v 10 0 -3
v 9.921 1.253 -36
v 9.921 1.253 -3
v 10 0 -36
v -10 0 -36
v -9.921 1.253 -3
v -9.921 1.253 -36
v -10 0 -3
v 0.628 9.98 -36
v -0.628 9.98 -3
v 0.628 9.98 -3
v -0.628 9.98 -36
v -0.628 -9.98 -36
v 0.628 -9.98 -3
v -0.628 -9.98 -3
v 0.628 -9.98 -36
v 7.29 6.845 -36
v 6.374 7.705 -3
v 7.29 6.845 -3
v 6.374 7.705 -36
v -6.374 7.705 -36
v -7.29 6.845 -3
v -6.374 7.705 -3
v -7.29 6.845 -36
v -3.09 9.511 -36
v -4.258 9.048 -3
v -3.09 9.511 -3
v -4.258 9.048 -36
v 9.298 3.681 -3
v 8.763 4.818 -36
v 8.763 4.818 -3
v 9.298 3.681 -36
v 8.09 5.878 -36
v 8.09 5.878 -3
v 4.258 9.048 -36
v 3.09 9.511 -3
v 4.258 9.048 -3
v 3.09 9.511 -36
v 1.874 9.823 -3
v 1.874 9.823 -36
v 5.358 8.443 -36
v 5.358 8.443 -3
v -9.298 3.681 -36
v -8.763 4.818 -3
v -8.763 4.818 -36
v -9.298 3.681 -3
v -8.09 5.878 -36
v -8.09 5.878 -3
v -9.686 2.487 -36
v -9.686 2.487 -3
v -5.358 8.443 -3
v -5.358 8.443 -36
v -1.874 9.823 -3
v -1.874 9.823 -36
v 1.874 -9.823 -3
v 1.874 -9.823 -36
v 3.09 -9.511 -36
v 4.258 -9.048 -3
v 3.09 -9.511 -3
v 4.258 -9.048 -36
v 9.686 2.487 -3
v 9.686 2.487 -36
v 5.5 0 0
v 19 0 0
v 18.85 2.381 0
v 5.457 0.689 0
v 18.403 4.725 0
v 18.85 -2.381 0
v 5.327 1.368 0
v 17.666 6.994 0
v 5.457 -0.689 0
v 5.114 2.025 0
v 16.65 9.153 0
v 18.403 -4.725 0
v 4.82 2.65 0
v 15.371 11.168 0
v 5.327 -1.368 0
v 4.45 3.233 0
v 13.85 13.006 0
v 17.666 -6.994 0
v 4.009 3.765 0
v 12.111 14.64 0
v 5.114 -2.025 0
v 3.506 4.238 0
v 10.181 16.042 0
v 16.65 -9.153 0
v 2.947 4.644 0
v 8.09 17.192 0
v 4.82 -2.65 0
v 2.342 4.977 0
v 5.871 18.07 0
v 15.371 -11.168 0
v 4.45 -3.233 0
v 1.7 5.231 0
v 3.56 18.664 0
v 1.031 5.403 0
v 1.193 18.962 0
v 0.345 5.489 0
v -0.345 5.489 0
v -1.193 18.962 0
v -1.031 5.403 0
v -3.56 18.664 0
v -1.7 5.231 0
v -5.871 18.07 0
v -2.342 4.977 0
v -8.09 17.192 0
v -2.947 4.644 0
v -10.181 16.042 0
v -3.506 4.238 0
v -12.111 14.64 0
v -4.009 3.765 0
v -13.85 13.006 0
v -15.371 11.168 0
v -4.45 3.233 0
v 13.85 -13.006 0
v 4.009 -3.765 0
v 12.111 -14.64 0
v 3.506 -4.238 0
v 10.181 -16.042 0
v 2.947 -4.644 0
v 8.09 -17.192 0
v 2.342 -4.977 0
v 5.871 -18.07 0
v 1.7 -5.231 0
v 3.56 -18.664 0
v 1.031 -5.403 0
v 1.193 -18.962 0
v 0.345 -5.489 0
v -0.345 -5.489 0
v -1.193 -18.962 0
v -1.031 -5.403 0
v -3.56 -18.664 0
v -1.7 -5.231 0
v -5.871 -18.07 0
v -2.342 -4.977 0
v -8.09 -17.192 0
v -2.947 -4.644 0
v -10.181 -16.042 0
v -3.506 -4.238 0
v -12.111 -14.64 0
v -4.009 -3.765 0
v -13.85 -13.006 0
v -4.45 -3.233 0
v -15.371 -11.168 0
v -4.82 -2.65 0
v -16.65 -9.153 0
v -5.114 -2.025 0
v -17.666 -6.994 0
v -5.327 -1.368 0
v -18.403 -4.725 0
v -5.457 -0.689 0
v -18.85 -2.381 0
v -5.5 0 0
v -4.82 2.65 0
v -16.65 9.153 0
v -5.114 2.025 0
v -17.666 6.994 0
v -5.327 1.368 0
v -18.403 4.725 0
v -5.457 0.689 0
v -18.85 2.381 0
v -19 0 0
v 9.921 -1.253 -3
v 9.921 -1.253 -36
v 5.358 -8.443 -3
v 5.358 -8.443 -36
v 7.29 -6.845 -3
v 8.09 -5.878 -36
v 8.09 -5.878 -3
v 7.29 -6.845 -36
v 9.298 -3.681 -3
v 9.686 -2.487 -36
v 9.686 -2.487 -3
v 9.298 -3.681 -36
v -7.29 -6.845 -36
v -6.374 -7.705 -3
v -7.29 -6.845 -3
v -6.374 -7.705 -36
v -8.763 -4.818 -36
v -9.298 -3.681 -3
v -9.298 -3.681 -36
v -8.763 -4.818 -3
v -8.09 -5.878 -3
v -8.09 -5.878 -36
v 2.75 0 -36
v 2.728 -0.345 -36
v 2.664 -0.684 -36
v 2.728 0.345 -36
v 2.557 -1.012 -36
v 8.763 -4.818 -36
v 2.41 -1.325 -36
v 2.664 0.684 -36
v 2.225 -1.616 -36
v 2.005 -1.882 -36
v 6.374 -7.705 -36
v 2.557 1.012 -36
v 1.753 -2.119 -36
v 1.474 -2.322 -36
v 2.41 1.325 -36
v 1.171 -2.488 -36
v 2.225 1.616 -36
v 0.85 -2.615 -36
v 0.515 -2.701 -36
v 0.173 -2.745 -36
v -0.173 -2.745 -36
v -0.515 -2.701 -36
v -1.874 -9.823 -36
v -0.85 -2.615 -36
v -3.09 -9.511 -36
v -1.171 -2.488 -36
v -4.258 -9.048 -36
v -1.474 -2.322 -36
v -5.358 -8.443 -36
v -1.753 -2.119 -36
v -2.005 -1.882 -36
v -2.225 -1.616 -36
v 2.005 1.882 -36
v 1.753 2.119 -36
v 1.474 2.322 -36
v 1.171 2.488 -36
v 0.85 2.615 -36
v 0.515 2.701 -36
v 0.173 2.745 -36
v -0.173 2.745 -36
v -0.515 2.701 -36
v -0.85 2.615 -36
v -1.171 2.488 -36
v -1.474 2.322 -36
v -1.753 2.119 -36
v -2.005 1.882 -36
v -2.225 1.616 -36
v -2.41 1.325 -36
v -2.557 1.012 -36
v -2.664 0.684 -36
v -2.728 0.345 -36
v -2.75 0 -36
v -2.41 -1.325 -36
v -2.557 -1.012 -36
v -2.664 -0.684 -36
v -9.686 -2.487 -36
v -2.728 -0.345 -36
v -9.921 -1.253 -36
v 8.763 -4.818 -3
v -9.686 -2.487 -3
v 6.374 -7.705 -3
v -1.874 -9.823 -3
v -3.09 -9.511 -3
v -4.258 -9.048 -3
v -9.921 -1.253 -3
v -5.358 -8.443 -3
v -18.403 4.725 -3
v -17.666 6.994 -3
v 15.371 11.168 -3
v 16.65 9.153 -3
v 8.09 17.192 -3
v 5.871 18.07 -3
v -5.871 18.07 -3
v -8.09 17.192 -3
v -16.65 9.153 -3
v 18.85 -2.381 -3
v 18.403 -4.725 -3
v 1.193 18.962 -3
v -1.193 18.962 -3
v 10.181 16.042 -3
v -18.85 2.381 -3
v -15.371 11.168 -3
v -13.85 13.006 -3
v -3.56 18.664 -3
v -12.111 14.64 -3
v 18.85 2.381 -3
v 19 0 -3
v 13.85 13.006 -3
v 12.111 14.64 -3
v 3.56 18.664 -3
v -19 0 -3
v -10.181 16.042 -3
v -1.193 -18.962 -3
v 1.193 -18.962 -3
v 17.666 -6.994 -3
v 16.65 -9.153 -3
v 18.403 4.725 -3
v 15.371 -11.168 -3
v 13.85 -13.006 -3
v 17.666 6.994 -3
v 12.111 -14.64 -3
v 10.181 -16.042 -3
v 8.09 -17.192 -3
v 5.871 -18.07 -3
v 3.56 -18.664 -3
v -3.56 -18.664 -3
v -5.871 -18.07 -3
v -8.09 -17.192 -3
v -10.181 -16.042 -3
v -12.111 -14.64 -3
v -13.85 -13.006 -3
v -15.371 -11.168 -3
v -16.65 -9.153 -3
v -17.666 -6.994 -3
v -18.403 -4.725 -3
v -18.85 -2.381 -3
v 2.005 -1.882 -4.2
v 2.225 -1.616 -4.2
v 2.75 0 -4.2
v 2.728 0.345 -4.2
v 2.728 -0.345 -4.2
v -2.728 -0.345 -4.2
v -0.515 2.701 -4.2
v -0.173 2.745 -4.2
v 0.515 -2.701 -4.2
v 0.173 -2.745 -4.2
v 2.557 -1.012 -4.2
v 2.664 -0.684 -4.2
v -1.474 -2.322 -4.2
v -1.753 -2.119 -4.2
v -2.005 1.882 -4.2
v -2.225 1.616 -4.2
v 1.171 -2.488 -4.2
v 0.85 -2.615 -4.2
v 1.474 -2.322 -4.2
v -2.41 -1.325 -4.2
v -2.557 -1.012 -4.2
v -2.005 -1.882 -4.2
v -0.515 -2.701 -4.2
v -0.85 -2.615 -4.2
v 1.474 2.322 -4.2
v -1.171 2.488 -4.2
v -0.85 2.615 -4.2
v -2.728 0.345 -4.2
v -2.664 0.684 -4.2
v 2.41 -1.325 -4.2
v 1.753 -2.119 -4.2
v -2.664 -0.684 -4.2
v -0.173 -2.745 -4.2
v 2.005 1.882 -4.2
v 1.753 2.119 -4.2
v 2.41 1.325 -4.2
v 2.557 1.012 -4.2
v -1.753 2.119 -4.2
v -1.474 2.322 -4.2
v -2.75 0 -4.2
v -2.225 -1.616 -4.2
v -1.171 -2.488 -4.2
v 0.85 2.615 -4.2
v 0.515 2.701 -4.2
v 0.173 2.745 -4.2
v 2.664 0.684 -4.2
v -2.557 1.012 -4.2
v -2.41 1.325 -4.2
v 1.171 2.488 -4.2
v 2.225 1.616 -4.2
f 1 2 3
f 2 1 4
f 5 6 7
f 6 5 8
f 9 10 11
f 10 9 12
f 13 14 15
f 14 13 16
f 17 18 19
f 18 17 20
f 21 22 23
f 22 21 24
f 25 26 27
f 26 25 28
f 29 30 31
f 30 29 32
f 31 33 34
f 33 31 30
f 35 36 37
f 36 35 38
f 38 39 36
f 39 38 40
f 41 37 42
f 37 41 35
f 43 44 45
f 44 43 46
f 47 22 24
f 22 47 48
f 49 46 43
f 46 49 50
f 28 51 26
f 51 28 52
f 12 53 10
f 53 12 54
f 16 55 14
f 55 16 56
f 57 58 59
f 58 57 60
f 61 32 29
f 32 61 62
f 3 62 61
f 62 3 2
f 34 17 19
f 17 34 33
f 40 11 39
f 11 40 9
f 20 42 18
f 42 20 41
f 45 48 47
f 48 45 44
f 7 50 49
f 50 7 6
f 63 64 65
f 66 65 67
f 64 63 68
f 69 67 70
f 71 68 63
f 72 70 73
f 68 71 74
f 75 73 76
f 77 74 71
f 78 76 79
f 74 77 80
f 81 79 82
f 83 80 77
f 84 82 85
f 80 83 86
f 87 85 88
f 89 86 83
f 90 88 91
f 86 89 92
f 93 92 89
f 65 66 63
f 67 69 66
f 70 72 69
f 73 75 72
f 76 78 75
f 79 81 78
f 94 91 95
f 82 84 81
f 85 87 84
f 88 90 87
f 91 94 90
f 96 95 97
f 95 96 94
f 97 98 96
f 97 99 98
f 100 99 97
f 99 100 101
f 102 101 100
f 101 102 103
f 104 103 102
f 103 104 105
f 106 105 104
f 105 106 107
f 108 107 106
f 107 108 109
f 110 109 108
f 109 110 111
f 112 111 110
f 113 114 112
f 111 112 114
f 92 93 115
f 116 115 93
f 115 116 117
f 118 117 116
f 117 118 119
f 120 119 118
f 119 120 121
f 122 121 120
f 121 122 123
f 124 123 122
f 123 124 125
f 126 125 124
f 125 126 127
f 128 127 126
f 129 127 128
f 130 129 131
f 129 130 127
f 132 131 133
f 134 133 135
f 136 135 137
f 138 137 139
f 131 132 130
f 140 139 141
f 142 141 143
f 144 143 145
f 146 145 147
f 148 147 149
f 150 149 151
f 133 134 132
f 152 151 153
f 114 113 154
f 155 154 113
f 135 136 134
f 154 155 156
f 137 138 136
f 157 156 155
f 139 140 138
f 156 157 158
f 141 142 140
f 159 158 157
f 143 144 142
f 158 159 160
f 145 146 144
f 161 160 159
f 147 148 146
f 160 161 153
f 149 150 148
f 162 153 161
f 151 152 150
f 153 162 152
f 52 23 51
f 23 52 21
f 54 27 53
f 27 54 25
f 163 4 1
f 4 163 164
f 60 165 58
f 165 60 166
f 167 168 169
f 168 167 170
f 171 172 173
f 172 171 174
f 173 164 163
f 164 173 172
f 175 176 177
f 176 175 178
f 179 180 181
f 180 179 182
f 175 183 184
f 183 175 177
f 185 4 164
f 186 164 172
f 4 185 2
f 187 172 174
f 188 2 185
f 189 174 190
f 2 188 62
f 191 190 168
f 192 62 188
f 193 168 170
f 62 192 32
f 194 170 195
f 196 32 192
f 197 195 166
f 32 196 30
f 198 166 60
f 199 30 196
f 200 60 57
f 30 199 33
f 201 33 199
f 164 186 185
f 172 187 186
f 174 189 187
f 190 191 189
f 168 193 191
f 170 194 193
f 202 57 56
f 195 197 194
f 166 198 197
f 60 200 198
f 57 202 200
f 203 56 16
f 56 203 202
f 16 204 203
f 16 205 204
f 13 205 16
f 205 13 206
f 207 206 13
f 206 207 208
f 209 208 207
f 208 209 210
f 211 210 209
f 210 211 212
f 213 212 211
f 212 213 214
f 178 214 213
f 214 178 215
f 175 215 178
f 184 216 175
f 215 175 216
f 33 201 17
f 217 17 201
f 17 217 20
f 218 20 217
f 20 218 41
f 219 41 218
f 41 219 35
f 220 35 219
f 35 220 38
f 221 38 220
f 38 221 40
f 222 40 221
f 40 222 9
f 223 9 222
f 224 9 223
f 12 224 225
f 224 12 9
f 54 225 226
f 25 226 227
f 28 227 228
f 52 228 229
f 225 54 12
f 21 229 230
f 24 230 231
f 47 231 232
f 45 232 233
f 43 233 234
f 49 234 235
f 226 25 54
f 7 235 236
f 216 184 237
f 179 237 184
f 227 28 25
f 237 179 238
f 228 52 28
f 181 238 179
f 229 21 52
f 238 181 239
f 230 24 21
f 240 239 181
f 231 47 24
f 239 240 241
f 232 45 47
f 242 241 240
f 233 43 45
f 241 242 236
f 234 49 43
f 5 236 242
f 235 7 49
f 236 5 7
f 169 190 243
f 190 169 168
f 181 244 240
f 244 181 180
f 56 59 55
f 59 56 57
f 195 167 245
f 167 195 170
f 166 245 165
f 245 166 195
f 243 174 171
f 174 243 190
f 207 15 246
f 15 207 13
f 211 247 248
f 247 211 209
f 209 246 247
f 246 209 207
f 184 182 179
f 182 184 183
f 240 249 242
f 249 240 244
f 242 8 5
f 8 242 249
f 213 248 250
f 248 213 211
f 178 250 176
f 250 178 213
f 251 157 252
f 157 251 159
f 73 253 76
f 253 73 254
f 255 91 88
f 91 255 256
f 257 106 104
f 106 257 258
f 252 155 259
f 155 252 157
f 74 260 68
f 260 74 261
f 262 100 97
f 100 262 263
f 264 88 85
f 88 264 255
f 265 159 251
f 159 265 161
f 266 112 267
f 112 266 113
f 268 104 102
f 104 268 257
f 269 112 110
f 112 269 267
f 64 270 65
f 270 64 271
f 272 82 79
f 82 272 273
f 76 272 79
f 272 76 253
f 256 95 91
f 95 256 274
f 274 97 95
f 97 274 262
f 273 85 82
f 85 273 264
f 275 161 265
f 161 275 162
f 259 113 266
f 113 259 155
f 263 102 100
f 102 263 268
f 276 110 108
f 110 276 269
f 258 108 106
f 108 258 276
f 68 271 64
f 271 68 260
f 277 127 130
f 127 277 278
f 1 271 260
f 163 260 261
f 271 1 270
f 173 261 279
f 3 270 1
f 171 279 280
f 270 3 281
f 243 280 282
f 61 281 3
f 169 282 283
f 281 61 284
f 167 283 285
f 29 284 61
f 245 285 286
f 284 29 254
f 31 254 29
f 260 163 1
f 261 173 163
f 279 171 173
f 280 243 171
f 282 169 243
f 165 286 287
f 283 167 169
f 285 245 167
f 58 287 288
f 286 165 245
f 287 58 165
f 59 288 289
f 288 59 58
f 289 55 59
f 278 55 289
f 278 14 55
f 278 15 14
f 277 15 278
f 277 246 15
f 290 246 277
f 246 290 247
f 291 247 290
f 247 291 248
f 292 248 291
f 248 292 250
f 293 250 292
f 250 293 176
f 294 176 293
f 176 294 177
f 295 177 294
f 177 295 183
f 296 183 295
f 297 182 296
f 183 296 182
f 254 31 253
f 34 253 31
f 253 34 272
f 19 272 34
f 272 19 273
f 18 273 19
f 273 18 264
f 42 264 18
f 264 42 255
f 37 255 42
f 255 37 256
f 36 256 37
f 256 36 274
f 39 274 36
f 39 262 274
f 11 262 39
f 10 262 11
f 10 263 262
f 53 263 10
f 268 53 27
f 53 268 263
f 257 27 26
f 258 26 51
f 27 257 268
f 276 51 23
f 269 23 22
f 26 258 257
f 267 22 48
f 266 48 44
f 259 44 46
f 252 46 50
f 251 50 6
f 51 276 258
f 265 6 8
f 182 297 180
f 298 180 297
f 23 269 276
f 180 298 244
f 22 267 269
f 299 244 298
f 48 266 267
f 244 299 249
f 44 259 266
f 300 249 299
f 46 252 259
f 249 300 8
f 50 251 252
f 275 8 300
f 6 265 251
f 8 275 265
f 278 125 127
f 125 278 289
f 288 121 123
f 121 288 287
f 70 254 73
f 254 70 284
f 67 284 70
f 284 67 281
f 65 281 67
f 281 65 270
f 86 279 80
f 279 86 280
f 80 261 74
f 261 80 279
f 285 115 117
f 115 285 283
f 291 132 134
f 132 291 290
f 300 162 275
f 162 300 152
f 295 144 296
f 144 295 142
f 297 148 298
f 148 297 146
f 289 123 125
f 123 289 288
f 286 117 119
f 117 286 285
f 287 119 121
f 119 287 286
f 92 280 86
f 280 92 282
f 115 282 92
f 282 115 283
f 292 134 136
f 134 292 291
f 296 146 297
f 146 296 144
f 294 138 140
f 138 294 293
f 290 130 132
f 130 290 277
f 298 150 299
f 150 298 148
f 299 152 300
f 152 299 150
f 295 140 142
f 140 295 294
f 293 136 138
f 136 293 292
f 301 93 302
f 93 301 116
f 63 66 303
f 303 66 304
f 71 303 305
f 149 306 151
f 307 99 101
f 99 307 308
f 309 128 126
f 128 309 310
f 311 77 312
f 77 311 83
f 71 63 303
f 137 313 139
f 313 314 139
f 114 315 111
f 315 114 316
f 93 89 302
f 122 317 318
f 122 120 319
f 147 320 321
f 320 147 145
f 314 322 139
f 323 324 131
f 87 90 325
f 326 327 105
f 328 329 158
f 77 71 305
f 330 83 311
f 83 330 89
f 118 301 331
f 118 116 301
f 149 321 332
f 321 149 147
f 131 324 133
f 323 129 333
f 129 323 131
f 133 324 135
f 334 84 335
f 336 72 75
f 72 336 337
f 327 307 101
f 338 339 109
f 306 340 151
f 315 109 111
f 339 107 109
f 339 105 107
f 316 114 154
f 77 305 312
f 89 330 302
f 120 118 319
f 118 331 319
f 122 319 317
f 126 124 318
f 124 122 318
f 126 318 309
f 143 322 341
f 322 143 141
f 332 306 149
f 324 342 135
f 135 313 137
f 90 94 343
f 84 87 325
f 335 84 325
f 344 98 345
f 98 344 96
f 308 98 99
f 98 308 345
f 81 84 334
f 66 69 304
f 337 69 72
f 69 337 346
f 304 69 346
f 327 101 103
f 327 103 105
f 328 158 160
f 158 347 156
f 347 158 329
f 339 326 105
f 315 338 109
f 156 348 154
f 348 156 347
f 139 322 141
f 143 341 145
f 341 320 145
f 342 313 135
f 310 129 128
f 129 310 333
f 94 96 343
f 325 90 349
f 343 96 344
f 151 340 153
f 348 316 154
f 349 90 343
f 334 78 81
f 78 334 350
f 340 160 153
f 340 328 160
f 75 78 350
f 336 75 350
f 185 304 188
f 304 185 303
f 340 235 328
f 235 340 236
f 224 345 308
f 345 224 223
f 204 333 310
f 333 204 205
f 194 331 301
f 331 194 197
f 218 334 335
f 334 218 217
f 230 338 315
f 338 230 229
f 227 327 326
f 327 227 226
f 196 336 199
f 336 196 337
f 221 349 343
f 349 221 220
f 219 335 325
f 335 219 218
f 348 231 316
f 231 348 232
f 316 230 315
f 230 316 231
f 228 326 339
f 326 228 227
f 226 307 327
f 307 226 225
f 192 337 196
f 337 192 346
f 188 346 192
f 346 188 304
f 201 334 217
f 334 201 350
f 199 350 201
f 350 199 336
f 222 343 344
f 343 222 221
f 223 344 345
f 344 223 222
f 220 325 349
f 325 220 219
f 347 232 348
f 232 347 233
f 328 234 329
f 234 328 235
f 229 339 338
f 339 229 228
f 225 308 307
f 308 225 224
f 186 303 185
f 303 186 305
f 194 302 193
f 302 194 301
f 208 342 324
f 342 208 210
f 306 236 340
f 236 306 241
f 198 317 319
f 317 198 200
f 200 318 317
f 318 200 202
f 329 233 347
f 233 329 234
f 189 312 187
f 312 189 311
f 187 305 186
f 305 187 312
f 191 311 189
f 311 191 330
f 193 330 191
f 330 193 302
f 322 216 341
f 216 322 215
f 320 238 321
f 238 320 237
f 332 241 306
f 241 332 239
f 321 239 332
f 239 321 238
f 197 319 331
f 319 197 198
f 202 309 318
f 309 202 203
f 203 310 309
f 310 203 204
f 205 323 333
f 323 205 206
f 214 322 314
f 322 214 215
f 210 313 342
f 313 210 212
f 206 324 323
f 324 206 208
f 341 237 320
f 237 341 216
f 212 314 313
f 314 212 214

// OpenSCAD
$fn = 50;


difference() {
	union() {
		translate(v = [0, 0, -36.0000000000]) {
			cylinder(h = 36, r = 10.0000000000);
		}
		translate(v = [0, 0, -3.0000000000]) {
			cylinder(h = 3, r = 19.0000000000);
		}
	}
	union() {
		translate(v = [0, 0, 0]) {
			rotate(a = [0, 0, 0]) {
				difference() {
					union() {
						#translate(v = [0, 0, -36.0000000000]) {
							cylinder(h = 36, r = 2.2500000000);
						}
						#translate(v = [0, 0, -4.2000000000]) {
							cylinder(h = 4.2000000000, r = 10.0000000000, r1 = 2.7500000000, r2 = 5.5000000000);
						}
						#translate(v = [0, 0, -36.0000000000]) {
							cylinder(h = 36, r = 2.7500000000);
						}
						#translate(v = [0, 0, -36.0000000000]) {
							cylinder(h = 36, r = 2.2500000000);
						}
					}
					union();
				}
			}
		}
	}
}
